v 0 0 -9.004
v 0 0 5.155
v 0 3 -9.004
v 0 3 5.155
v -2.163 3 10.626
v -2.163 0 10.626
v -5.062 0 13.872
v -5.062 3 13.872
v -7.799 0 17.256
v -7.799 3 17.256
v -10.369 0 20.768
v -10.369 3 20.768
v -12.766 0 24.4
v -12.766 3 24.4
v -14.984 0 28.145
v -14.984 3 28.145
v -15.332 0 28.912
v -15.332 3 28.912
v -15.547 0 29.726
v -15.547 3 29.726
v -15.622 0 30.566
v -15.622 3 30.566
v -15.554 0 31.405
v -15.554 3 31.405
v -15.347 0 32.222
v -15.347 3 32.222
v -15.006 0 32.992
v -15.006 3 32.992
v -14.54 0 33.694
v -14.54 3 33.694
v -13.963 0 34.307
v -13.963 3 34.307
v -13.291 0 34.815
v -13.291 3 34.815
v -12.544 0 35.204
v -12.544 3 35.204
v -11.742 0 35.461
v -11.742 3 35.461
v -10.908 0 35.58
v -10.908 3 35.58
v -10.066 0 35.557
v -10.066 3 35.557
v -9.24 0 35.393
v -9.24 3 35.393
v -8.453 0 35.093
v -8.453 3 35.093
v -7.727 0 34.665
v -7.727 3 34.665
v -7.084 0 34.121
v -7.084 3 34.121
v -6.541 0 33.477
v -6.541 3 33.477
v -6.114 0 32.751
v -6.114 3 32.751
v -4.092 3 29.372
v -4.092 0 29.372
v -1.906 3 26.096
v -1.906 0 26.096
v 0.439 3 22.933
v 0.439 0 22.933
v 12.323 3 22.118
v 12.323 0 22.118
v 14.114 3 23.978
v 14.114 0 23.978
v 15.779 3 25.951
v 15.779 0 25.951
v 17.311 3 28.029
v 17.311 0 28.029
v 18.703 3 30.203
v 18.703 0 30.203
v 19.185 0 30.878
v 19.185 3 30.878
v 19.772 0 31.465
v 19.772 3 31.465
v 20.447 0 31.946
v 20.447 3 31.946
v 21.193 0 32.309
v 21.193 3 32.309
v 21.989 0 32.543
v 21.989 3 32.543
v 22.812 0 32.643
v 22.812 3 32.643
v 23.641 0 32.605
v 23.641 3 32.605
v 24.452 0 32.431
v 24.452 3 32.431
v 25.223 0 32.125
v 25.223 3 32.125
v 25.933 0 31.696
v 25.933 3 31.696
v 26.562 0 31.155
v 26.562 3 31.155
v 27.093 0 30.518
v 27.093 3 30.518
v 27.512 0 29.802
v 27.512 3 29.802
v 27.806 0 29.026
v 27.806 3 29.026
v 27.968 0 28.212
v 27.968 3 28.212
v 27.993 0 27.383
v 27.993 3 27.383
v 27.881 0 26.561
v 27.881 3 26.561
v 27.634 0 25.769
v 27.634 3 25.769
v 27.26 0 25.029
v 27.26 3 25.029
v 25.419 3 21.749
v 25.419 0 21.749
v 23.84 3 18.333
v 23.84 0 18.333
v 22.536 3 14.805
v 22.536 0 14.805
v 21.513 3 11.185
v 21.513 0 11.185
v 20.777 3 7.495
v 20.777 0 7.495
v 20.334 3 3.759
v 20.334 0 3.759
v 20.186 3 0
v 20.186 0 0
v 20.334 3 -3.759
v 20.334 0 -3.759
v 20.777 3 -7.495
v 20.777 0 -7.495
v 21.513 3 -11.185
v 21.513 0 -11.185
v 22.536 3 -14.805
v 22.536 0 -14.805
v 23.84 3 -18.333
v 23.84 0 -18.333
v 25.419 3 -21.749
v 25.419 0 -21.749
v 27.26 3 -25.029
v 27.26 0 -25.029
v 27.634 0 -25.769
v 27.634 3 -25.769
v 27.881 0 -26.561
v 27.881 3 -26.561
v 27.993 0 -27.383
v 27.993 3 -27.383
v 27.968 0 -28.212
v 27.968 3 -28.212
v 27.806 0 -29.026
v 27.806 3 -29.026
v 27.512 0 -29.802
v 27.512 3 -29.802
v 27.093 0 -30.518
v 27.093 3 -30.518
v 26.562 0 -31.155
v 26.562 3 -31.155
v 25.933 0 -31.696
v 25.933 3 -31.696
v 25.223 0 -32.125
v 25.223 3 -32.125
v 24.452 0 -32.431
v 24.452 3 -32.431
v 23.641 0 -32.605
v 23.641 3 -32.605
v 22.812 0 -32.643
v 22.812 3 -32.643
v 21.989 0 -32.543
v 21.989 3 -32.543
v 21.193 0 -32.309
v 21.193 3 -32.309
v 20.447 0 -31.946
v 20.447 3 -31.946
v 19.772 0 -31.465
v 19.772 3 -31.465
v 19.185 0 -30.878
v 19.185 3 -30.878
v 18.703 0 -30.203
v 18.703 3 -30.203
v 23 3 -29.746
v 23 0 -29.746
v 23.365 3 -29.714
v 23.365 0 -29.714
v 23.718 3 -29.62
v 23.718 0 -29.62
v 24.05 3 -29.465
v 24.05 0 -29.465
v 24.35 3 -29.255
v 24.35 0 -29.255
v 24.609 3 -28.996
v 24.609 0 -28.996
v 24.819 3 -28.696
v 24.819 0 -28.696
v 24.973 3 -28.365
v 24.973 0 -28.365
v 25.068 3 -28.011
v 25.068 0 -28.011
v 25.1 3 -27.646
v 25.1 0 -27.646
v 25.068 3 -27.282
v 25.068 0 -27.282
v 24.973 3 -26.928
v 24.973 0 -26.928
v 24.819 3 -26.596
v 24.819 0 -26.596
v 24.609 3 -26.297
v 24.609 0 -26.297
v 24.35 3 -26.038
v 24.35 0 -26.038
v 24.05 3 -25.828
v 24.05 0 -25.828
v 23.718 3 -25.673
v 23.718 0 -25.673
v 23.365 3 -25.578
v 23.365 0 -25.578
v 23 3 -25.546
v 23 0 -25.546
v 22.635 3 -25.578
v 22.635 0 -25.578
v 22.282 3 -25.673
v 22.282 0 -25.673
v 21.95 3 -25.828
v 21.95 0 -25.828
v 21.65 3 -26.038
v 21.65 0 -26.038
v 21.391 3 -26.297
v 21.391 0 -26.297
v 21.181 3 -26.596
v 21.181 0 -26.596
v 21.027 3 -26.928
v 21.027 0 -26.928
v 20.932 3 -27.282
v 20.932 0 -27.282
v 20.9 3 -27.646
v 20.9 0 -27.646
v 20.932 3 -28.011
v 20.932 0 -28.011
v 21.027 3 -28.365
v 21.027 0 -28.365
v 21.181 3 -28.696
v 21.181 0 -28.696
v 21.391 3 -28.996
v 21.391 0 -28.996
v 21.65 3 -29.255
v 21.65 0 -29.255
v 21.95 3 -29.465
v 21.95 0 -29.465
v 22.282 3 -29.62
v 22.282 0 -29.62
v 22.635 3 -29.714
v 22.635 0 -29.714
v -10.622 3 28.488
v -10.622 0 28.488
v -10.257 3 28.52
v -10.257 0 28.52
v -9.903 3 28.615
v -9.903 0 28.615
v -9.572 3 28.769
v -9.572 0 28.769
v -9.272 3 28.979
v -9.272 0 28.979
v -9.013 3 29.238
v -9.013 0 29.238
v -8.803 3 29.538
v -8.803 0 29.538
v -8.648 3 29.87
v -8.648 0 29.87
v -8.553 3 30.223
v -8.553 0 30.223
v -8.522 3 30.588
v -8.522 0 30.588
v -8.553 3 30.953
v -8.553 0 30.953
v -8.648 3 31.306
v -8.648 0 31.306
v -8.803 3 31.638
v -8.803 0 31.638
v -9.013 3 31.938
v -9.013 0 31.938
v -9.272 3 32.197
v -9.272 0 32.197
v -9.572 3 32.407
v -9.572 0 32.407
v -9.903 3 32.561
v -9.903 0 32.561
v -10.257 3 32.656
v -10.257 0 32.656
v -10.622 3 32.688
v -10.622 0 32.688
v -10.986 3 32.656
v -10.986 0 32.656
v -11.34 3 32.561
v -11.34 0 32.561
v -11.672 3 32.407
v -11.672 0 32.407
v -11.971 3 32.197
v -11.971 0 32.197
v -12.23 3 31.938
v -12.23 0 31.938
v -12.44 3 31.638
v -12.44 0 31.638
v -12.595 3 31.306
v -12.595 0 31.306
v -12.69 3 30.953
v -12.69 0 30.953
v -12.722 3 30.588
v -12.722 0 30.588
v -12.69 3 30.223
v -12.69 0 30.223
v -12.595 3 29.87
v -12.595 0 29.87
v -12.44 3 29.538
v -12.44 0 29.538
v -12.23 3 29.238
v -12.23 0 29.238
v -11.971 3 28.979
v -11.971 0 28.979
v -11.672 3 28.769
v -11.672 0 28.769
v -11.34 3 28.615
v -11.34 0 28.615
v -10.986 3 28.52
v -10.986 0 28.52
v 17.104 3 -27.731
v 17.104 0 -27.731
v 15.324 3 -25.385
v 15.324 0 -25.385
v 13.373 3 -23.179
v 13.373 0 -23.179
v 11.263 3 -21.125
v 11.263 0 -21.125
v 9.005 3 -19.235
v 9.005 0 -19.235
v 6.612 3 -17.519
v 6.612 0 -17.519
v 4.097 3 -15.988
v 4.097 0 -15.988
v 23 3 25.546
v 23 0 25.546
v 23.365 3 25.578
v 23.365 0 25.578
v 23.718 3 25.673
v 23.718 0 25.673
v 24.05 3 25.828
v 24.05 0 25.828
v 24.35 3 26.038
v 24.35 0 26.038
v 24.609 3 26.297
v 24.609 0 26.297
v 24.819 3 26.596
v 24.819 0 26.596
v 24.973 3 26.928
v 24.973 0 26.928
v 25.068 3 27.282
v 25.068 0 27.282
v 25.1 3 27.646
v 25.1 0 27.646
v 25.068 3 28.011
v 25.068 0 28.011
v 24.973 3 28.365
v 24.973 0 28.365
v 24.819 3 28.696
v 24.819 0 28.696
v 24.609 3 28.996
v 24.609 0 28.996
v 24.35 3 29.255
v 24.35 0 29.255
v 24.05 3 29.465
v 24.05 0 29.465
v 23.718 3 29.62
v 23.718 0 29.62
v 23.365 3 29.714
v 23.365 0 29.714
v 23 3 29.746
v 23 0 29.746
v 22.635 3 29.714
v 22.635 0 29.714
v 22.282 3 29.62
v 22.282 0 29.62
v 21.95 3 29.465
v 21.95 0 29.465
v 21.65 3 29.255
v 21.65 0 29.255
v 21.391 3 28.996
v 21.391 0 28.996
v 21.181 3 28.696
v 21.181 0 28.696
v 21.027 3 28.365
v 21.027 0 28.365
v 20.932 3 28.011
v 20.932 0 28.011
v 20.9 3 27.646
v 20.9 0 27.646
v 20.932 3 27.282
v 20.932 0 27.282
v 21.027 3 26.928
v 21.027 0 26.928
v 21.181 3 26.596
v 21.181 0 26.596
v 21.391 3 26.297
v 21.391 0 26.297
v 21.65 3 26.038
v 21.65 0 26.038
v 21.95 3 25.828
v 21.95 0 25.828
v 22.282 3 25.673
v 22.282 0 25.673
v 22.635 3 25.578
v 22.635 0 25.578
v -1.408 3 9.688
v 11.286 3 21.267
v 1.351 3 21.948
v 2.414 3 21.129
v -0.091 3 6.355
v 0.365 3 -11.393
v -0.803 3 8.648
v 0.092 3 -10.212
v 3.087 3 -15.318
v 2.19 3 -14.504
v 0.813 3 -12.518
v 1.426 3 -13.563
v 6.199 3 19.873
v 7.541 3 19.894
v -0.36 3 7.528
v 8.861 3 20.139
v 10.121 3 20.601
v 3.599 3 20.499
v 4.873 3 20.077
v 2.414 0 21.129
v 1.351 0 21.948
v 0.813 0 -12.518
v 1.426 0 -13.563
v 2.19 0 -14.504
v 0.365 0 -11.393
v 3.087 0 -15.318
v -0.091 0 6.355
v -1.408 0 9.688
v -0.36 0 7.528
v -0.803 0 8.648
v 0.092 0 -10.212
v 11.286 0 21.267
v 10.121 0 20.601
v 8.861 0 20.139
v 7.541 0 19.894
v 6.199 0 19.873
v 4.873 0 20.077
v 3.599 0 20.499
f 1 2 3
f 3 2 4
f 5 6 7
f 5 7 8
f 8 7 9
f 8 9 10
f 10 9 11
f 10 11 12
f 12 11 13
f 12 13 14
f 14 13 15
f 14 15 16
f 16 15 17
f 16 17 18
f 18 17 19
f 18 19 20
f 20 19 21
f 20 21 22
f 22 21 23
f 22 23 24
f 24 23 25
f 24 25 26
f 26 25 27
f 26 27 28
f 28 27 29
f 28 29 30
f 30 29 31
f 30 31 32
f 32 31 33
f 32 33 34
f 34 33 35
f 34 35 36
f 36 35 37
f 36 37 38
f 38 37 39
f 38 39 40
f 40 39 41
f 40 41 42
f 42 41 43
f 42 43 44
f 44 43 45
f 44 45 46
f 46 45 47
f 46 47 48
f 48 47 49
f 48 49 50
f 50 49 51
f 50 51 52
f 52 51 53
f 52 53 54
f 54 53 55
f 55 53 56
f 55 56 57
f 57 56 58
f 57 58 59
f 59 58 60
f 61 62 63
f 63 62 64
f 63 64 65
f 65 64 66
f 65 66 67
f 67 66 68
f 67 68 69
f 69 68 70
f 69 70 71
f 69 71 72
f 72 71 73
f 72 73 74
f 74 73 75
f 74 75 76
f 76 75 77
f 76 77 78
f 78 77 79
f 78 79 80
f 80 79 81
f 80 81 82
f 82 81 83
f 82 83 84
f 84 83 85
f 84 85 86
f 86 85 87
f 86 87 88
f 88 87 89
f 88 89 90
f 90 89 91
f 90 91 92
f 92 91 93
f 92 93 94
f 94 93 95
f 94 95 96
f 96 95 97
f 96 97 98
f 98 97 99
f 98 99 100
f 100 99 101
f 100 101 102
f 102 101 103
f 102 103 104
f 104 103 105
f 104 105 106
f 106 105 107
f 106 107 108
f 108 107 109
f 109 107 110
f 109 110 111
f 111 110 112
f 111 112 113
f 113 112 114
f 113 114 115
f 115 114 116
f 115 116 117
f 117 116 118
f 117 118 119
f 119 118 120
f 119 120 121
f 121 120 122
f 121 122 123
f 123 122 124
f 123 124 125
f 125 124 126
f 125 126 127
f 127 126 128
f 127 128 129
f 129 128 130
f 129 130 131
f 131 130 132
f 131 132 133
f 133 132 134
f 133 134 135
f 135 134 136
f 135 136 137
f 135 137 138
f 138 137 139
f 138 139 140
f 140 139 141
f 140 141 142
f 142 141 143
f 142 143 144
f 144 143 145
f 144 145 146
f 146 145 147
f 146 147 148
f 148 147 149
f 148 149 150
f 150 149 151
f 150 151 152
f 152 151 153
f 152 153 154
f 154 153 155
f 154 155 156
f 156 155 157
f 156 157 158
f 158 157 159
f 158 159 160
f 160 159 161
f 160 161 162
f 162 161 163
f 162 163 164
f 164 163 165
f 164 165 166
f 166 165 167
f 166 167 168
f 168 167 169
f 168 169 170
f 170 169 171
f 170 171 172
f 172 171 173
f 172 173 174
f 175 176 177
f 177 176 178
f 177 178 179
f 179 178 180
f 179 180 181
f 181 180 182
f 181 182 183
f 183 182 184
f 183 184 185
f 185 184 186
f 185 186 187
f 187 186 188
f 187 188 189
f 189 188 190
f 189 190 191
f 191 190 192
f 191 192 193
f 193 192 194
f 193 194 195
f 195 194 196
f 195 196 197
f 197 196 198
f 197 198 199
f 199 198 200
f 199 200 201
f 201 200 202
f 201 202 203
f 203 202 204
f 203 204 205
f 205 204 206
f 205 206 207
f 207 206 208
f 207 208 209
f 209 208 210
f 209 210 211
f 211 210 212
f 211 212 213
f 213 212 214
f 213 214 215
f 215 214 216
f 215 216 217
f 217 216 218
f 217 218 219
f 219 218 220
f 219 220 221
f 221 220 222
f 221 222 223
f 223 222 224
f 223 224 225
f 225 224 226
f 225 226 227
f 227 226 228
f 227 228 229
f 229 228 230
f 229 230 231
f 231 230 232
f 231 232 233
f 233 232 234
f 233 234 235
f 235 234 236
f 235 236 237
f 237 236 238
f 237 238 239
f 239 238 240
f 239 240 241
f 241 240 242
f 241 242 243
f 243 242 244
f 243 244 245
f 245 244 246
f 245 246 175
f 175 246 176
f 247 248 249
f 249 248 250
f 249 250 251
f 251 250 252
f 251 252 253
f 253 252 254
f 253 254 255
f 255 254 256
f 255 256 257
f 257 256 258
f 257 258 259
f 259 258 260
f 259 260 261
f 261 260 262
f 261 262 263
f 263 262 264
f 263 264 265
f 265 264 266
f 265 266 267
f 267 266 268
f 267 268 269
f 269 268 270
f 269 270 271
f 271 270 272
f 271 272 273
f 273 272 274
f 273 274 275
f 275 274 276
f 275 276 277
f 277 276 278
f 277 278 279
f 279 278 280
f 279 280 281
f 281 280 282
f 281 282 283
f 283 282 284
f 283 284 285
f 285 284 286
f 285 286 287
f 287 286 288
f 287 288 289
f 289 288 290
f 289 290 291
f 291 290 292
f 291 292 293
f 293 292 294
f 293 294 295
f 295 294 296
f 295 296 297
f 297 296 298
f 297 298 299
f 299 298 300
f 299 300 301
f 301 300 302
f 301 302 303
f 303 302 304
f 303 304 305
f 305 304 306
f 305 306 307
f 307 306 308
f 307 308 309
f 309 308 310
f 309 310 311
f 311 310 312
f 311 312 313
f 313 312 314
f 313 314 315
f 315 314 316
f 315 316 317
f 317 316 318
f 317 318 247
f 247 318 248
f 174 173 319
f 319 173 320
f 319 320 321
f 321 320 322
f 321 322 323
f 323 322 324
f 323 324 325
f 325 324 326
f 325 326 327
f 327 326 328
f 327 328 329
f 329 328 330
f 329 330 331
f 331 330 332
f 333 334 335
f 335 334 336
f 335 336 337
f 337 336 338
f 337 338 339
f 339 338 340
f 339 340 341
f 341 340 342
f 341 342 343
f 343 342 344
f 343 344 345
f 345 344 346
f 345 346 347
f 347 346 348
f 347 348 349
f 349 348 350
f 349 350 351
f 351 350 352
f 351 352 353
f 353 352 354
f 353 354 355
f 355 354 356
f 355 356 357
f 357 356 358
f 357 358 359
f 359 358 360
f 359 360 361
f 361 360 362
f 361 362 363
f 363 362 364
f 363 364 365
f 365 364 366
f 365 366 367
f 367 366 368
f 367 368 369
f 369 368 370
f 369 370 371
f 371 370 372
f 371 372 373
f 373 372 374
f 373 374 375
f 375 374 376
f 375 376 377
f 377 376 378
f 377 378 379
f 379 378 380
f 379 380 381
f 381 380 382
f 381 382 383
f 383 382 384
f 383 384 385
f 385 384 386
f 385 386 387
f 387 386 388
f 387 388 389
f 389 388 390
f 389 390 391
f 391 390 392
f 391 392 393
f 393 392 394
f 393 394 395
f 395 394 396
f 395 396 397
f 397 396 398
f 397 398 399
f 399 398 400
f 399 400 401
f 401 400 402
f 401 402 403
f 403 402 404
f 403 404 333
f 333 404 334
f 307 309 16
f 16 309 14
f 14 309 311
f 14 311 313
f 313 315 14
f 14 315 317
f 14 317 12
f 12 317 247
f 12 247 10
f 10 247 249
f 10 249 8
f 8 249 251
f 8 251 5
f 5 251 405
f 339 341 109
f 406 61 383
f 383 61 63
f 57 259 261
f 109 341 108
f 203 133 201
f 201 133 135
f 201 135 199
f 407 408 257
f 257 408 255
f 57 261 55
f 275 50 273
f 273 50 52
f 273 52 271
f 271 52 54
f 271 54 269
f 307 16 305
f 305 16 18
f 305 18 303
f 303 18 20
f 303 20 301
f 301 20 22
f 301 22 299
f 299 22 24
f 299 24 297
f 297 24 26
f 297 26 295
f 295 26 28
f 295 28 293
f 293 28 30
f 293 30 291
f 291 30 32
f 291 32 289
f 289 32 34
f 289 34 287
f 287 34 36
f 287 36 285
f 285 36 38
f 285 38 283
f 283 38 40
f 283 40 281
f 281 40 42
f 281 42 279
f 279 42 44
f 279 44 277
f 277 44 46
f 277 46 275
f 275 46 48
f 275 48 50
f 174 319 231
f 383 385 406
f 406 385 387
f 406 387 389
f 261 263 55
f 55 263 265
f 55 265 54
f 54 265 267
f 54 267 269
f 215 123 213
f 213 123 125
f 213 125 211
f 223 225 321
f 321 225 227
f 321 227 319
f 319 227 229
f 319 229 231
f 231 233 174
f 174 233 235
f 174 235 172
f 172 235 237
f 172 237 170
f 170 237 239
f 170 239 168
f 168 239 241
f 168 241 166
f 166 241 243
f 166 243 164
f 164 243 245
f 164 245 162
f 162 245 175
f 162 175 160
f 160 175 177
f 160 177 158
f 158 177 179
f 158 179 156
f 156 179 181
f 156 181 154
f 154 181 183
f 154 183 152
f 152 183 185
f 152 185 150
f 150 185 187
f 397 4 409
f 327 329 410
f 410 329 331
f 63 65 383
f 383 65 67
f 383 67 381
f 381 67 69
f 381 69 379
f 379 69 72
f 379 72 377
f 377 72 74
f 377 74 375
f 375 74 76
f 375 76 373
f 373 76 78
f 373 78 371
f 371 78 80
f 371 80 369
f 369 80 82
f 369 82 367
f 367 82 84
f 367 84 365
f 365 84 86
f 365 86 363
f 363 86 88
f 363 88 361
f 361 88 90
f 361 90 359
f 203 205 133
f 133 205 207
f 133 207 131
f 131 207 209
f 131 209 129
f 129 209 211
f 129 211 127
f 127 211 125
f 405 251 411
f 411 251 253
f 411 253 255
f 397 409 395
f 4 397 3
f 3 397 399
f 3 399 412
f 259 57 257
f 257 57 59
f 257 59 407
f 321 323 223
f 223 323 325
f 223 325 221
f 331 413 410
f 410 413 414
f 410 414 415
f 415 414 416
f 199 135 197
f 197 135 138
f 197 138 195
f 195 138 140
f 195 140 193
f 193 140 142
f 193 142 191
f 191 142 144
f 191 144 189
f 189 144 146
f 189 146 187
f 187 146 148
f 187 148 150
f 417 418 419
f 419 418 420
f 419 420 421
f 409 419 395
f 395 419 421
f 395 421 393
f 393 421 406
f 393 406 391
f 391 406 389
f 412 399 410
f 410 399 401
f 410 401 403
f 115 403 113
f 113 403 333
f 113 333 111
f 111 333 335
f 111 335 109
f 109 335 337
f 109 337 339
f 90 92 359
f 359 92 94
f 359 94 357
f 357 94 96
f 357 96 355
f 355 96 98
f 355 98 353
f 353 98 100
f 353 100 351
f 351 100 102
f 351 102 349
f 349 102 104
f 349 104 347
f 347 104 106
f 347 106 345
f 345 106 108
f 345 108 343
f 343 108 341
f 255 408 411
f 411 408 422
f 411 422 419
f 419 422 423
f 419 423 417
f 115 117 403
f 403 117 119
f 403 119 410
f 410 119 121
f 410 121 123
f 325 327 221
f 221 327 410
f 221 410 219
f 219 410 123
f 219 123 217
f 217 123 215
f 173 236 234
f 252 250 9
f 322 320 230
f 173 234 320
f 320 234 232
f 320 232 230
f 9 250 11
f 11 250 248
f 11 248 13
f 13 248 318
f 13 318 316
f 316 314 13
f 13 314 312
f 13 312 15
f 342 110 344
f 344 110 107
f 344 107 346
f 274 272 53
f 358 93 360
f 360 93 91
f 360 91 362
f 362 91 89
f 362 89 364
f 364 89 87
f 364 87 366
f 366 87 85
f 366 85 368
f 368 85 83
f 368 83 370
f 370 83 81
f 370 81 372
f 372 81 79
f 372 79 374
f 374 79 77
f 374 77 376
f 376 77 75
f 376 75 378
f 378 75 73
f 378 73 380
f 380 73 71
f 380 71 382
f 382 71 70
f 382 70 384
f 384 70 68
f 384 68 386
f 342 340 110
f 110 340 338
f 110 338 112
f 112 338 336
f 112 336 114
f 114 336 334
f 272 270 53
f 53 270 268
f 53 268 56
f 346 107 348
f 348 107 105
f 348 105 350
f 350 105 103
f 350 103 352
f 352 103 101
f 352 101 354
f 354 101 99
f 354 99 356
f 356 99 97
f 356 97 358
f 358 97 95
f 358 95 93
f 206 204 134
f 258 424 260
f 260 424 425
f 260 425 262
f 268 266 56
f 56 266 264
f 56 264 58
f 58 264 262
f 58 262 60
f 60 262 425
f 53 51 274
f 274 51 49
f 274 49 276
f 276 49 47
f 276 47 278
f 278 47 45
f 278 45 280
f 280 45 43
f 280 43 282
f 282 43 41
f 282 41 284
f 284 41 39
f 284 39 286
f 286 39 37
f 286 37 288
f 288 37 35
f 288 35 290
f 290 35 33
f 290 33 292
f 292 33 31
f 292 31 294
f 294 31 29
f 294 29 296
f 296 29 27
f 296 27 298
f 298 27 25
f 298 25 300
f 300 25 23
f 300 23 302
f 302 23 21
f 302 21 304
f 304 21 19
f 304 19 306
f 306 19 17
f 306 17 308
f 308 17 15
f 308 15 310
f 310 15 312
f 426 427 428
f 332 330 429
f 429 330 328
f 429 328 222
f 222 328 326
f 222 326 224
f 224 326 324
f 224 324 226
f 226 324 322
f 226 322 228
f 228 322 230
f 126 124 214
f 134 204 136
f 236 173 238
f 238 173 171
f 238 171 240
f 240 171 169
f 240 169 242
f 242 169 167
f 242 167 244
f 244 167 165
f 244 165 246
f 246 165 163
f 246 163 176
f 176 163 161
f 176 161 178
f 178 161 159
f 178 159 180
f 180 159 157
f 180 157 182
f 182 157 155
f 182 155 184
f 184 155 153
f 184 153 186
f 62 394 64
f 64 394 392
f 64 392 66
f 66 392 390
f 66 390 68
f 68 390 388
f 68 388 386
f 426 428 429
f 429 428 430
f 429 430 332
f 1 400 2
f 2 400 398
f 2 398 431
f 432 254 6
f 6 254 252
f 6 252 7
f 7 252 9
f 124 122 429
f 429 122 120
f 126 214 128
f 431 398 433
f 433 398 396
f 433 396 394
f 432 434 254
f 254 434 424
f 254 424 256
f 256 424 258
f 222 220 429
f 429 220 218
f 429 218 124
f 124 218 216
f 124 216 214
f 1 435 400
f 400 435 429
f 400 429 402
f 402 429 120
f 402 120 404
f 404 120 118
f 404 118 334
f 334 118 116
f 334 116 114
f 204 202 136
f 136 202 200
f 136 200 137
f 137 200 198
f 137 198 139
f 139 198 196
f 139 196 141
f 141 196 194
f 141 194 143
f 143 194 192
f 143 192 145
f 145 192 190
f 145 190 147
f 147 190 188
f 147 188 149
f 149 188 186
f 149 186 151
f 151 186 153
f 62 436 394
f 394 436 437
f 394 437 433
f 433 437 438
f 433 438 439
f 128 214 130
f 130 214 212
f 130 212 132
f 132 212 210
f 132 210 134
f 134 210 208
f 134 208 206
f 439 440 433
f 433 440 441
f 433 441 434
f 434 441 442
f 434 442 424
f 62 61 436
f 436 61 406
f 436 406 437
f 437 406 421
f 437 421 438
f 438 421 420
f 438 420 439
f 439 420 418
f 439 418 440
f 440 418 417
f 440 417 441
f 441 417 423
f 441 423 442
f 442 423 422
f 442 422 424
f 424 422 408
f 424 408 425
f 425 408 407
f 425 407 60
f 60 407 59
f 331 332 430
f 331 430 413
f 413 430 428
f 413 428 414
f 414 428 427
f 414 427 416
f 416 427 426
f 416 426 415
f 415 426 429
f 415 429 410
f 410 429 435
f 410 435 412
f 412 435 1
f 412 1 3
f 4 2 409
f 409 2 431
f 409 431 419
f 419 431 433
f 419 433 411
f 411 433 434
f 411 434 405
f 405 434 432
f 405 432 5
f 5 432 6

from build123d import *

# Parameters (mm, degrees)
SKETCH1_R           = 2.1
BOSS_EXTRUDE1_DEPTH = 3
FILLET1_R           = 8


with BuildPart() as part:
    # Sketch1 → Boss-Extrude1 (new body)
    with BuildSketch(Plane(origin=(0, 0, 0), x_dir=(1, 0, 0), z_dir=(0, 1, 0))):
        with BuildLine():
            ThreePointArc((-6.113719472, -32.751050787), (-0.724273586, -24.461432648), (5.649824002, -16.902677739))
            ThreePointArc((5.649824002, -16.902677739), (12.975948477, -22.768180875), (18.703056171, -30.202995218))
            ThreePointArc((18.703056171, -30.202995218), (25.587038372, -31.925076677), (27.260231116, -25.029048724))
            ThreePointArc((27.260231116, -25.029048724), (20.185963894, 0), (27.260231116, 25.029048724))
            ThreePointArc((27.260231116, 25.029048724), (25.587038372, 31.925076677), (18.703056171, 30.202995218))
            ThreePointArc((18.703056171, 30.202995218), (10.659672329, 20.591511651), (0, 14))
            Line((0, 14), (0, -8.396398763))
            ThreePointArc((0, -8.396398763), (-8.177458209, -17.750627647), (-14.984135407, -28.14493216))
            ThreePointArc((-14.984135407, -28.14493216), (-12.92577576, -35.025301553), (-6.113719472, -32.751050787))
        make_face()
        with Locations(Location((-10.621571061, -30.587887812, 0), (0, 0, 270))):
            Circle(SKETCH1_R, mode=Mode.SUBTRACT)
        with Locations(Location((23, -27.646381495, 0), (0, 0, 270))):
            Circle(SKETCH1_R, mode=Mode.SUBTRACT)
        with Locations(Location((23, 27.646381495, 0), (0, 0, 270))):
            Circle(SKETCH1_R, mode=Mode.SUBTRACT)
    extrude(amount=BOSS_EXTRUDE1_DEPTH)

    # Fillet1
    fillet1_edges = [part.edges().sort_by_distance(p)[0] for p in [
        (0, 1.5, -14),
        (5.649824002, 1.5, 16.902677739),
        (0, 1.5, 8.396398763),
    ]]
    fillet(fillet1_edges, radius=FILLET1_R)


solid = part.part
